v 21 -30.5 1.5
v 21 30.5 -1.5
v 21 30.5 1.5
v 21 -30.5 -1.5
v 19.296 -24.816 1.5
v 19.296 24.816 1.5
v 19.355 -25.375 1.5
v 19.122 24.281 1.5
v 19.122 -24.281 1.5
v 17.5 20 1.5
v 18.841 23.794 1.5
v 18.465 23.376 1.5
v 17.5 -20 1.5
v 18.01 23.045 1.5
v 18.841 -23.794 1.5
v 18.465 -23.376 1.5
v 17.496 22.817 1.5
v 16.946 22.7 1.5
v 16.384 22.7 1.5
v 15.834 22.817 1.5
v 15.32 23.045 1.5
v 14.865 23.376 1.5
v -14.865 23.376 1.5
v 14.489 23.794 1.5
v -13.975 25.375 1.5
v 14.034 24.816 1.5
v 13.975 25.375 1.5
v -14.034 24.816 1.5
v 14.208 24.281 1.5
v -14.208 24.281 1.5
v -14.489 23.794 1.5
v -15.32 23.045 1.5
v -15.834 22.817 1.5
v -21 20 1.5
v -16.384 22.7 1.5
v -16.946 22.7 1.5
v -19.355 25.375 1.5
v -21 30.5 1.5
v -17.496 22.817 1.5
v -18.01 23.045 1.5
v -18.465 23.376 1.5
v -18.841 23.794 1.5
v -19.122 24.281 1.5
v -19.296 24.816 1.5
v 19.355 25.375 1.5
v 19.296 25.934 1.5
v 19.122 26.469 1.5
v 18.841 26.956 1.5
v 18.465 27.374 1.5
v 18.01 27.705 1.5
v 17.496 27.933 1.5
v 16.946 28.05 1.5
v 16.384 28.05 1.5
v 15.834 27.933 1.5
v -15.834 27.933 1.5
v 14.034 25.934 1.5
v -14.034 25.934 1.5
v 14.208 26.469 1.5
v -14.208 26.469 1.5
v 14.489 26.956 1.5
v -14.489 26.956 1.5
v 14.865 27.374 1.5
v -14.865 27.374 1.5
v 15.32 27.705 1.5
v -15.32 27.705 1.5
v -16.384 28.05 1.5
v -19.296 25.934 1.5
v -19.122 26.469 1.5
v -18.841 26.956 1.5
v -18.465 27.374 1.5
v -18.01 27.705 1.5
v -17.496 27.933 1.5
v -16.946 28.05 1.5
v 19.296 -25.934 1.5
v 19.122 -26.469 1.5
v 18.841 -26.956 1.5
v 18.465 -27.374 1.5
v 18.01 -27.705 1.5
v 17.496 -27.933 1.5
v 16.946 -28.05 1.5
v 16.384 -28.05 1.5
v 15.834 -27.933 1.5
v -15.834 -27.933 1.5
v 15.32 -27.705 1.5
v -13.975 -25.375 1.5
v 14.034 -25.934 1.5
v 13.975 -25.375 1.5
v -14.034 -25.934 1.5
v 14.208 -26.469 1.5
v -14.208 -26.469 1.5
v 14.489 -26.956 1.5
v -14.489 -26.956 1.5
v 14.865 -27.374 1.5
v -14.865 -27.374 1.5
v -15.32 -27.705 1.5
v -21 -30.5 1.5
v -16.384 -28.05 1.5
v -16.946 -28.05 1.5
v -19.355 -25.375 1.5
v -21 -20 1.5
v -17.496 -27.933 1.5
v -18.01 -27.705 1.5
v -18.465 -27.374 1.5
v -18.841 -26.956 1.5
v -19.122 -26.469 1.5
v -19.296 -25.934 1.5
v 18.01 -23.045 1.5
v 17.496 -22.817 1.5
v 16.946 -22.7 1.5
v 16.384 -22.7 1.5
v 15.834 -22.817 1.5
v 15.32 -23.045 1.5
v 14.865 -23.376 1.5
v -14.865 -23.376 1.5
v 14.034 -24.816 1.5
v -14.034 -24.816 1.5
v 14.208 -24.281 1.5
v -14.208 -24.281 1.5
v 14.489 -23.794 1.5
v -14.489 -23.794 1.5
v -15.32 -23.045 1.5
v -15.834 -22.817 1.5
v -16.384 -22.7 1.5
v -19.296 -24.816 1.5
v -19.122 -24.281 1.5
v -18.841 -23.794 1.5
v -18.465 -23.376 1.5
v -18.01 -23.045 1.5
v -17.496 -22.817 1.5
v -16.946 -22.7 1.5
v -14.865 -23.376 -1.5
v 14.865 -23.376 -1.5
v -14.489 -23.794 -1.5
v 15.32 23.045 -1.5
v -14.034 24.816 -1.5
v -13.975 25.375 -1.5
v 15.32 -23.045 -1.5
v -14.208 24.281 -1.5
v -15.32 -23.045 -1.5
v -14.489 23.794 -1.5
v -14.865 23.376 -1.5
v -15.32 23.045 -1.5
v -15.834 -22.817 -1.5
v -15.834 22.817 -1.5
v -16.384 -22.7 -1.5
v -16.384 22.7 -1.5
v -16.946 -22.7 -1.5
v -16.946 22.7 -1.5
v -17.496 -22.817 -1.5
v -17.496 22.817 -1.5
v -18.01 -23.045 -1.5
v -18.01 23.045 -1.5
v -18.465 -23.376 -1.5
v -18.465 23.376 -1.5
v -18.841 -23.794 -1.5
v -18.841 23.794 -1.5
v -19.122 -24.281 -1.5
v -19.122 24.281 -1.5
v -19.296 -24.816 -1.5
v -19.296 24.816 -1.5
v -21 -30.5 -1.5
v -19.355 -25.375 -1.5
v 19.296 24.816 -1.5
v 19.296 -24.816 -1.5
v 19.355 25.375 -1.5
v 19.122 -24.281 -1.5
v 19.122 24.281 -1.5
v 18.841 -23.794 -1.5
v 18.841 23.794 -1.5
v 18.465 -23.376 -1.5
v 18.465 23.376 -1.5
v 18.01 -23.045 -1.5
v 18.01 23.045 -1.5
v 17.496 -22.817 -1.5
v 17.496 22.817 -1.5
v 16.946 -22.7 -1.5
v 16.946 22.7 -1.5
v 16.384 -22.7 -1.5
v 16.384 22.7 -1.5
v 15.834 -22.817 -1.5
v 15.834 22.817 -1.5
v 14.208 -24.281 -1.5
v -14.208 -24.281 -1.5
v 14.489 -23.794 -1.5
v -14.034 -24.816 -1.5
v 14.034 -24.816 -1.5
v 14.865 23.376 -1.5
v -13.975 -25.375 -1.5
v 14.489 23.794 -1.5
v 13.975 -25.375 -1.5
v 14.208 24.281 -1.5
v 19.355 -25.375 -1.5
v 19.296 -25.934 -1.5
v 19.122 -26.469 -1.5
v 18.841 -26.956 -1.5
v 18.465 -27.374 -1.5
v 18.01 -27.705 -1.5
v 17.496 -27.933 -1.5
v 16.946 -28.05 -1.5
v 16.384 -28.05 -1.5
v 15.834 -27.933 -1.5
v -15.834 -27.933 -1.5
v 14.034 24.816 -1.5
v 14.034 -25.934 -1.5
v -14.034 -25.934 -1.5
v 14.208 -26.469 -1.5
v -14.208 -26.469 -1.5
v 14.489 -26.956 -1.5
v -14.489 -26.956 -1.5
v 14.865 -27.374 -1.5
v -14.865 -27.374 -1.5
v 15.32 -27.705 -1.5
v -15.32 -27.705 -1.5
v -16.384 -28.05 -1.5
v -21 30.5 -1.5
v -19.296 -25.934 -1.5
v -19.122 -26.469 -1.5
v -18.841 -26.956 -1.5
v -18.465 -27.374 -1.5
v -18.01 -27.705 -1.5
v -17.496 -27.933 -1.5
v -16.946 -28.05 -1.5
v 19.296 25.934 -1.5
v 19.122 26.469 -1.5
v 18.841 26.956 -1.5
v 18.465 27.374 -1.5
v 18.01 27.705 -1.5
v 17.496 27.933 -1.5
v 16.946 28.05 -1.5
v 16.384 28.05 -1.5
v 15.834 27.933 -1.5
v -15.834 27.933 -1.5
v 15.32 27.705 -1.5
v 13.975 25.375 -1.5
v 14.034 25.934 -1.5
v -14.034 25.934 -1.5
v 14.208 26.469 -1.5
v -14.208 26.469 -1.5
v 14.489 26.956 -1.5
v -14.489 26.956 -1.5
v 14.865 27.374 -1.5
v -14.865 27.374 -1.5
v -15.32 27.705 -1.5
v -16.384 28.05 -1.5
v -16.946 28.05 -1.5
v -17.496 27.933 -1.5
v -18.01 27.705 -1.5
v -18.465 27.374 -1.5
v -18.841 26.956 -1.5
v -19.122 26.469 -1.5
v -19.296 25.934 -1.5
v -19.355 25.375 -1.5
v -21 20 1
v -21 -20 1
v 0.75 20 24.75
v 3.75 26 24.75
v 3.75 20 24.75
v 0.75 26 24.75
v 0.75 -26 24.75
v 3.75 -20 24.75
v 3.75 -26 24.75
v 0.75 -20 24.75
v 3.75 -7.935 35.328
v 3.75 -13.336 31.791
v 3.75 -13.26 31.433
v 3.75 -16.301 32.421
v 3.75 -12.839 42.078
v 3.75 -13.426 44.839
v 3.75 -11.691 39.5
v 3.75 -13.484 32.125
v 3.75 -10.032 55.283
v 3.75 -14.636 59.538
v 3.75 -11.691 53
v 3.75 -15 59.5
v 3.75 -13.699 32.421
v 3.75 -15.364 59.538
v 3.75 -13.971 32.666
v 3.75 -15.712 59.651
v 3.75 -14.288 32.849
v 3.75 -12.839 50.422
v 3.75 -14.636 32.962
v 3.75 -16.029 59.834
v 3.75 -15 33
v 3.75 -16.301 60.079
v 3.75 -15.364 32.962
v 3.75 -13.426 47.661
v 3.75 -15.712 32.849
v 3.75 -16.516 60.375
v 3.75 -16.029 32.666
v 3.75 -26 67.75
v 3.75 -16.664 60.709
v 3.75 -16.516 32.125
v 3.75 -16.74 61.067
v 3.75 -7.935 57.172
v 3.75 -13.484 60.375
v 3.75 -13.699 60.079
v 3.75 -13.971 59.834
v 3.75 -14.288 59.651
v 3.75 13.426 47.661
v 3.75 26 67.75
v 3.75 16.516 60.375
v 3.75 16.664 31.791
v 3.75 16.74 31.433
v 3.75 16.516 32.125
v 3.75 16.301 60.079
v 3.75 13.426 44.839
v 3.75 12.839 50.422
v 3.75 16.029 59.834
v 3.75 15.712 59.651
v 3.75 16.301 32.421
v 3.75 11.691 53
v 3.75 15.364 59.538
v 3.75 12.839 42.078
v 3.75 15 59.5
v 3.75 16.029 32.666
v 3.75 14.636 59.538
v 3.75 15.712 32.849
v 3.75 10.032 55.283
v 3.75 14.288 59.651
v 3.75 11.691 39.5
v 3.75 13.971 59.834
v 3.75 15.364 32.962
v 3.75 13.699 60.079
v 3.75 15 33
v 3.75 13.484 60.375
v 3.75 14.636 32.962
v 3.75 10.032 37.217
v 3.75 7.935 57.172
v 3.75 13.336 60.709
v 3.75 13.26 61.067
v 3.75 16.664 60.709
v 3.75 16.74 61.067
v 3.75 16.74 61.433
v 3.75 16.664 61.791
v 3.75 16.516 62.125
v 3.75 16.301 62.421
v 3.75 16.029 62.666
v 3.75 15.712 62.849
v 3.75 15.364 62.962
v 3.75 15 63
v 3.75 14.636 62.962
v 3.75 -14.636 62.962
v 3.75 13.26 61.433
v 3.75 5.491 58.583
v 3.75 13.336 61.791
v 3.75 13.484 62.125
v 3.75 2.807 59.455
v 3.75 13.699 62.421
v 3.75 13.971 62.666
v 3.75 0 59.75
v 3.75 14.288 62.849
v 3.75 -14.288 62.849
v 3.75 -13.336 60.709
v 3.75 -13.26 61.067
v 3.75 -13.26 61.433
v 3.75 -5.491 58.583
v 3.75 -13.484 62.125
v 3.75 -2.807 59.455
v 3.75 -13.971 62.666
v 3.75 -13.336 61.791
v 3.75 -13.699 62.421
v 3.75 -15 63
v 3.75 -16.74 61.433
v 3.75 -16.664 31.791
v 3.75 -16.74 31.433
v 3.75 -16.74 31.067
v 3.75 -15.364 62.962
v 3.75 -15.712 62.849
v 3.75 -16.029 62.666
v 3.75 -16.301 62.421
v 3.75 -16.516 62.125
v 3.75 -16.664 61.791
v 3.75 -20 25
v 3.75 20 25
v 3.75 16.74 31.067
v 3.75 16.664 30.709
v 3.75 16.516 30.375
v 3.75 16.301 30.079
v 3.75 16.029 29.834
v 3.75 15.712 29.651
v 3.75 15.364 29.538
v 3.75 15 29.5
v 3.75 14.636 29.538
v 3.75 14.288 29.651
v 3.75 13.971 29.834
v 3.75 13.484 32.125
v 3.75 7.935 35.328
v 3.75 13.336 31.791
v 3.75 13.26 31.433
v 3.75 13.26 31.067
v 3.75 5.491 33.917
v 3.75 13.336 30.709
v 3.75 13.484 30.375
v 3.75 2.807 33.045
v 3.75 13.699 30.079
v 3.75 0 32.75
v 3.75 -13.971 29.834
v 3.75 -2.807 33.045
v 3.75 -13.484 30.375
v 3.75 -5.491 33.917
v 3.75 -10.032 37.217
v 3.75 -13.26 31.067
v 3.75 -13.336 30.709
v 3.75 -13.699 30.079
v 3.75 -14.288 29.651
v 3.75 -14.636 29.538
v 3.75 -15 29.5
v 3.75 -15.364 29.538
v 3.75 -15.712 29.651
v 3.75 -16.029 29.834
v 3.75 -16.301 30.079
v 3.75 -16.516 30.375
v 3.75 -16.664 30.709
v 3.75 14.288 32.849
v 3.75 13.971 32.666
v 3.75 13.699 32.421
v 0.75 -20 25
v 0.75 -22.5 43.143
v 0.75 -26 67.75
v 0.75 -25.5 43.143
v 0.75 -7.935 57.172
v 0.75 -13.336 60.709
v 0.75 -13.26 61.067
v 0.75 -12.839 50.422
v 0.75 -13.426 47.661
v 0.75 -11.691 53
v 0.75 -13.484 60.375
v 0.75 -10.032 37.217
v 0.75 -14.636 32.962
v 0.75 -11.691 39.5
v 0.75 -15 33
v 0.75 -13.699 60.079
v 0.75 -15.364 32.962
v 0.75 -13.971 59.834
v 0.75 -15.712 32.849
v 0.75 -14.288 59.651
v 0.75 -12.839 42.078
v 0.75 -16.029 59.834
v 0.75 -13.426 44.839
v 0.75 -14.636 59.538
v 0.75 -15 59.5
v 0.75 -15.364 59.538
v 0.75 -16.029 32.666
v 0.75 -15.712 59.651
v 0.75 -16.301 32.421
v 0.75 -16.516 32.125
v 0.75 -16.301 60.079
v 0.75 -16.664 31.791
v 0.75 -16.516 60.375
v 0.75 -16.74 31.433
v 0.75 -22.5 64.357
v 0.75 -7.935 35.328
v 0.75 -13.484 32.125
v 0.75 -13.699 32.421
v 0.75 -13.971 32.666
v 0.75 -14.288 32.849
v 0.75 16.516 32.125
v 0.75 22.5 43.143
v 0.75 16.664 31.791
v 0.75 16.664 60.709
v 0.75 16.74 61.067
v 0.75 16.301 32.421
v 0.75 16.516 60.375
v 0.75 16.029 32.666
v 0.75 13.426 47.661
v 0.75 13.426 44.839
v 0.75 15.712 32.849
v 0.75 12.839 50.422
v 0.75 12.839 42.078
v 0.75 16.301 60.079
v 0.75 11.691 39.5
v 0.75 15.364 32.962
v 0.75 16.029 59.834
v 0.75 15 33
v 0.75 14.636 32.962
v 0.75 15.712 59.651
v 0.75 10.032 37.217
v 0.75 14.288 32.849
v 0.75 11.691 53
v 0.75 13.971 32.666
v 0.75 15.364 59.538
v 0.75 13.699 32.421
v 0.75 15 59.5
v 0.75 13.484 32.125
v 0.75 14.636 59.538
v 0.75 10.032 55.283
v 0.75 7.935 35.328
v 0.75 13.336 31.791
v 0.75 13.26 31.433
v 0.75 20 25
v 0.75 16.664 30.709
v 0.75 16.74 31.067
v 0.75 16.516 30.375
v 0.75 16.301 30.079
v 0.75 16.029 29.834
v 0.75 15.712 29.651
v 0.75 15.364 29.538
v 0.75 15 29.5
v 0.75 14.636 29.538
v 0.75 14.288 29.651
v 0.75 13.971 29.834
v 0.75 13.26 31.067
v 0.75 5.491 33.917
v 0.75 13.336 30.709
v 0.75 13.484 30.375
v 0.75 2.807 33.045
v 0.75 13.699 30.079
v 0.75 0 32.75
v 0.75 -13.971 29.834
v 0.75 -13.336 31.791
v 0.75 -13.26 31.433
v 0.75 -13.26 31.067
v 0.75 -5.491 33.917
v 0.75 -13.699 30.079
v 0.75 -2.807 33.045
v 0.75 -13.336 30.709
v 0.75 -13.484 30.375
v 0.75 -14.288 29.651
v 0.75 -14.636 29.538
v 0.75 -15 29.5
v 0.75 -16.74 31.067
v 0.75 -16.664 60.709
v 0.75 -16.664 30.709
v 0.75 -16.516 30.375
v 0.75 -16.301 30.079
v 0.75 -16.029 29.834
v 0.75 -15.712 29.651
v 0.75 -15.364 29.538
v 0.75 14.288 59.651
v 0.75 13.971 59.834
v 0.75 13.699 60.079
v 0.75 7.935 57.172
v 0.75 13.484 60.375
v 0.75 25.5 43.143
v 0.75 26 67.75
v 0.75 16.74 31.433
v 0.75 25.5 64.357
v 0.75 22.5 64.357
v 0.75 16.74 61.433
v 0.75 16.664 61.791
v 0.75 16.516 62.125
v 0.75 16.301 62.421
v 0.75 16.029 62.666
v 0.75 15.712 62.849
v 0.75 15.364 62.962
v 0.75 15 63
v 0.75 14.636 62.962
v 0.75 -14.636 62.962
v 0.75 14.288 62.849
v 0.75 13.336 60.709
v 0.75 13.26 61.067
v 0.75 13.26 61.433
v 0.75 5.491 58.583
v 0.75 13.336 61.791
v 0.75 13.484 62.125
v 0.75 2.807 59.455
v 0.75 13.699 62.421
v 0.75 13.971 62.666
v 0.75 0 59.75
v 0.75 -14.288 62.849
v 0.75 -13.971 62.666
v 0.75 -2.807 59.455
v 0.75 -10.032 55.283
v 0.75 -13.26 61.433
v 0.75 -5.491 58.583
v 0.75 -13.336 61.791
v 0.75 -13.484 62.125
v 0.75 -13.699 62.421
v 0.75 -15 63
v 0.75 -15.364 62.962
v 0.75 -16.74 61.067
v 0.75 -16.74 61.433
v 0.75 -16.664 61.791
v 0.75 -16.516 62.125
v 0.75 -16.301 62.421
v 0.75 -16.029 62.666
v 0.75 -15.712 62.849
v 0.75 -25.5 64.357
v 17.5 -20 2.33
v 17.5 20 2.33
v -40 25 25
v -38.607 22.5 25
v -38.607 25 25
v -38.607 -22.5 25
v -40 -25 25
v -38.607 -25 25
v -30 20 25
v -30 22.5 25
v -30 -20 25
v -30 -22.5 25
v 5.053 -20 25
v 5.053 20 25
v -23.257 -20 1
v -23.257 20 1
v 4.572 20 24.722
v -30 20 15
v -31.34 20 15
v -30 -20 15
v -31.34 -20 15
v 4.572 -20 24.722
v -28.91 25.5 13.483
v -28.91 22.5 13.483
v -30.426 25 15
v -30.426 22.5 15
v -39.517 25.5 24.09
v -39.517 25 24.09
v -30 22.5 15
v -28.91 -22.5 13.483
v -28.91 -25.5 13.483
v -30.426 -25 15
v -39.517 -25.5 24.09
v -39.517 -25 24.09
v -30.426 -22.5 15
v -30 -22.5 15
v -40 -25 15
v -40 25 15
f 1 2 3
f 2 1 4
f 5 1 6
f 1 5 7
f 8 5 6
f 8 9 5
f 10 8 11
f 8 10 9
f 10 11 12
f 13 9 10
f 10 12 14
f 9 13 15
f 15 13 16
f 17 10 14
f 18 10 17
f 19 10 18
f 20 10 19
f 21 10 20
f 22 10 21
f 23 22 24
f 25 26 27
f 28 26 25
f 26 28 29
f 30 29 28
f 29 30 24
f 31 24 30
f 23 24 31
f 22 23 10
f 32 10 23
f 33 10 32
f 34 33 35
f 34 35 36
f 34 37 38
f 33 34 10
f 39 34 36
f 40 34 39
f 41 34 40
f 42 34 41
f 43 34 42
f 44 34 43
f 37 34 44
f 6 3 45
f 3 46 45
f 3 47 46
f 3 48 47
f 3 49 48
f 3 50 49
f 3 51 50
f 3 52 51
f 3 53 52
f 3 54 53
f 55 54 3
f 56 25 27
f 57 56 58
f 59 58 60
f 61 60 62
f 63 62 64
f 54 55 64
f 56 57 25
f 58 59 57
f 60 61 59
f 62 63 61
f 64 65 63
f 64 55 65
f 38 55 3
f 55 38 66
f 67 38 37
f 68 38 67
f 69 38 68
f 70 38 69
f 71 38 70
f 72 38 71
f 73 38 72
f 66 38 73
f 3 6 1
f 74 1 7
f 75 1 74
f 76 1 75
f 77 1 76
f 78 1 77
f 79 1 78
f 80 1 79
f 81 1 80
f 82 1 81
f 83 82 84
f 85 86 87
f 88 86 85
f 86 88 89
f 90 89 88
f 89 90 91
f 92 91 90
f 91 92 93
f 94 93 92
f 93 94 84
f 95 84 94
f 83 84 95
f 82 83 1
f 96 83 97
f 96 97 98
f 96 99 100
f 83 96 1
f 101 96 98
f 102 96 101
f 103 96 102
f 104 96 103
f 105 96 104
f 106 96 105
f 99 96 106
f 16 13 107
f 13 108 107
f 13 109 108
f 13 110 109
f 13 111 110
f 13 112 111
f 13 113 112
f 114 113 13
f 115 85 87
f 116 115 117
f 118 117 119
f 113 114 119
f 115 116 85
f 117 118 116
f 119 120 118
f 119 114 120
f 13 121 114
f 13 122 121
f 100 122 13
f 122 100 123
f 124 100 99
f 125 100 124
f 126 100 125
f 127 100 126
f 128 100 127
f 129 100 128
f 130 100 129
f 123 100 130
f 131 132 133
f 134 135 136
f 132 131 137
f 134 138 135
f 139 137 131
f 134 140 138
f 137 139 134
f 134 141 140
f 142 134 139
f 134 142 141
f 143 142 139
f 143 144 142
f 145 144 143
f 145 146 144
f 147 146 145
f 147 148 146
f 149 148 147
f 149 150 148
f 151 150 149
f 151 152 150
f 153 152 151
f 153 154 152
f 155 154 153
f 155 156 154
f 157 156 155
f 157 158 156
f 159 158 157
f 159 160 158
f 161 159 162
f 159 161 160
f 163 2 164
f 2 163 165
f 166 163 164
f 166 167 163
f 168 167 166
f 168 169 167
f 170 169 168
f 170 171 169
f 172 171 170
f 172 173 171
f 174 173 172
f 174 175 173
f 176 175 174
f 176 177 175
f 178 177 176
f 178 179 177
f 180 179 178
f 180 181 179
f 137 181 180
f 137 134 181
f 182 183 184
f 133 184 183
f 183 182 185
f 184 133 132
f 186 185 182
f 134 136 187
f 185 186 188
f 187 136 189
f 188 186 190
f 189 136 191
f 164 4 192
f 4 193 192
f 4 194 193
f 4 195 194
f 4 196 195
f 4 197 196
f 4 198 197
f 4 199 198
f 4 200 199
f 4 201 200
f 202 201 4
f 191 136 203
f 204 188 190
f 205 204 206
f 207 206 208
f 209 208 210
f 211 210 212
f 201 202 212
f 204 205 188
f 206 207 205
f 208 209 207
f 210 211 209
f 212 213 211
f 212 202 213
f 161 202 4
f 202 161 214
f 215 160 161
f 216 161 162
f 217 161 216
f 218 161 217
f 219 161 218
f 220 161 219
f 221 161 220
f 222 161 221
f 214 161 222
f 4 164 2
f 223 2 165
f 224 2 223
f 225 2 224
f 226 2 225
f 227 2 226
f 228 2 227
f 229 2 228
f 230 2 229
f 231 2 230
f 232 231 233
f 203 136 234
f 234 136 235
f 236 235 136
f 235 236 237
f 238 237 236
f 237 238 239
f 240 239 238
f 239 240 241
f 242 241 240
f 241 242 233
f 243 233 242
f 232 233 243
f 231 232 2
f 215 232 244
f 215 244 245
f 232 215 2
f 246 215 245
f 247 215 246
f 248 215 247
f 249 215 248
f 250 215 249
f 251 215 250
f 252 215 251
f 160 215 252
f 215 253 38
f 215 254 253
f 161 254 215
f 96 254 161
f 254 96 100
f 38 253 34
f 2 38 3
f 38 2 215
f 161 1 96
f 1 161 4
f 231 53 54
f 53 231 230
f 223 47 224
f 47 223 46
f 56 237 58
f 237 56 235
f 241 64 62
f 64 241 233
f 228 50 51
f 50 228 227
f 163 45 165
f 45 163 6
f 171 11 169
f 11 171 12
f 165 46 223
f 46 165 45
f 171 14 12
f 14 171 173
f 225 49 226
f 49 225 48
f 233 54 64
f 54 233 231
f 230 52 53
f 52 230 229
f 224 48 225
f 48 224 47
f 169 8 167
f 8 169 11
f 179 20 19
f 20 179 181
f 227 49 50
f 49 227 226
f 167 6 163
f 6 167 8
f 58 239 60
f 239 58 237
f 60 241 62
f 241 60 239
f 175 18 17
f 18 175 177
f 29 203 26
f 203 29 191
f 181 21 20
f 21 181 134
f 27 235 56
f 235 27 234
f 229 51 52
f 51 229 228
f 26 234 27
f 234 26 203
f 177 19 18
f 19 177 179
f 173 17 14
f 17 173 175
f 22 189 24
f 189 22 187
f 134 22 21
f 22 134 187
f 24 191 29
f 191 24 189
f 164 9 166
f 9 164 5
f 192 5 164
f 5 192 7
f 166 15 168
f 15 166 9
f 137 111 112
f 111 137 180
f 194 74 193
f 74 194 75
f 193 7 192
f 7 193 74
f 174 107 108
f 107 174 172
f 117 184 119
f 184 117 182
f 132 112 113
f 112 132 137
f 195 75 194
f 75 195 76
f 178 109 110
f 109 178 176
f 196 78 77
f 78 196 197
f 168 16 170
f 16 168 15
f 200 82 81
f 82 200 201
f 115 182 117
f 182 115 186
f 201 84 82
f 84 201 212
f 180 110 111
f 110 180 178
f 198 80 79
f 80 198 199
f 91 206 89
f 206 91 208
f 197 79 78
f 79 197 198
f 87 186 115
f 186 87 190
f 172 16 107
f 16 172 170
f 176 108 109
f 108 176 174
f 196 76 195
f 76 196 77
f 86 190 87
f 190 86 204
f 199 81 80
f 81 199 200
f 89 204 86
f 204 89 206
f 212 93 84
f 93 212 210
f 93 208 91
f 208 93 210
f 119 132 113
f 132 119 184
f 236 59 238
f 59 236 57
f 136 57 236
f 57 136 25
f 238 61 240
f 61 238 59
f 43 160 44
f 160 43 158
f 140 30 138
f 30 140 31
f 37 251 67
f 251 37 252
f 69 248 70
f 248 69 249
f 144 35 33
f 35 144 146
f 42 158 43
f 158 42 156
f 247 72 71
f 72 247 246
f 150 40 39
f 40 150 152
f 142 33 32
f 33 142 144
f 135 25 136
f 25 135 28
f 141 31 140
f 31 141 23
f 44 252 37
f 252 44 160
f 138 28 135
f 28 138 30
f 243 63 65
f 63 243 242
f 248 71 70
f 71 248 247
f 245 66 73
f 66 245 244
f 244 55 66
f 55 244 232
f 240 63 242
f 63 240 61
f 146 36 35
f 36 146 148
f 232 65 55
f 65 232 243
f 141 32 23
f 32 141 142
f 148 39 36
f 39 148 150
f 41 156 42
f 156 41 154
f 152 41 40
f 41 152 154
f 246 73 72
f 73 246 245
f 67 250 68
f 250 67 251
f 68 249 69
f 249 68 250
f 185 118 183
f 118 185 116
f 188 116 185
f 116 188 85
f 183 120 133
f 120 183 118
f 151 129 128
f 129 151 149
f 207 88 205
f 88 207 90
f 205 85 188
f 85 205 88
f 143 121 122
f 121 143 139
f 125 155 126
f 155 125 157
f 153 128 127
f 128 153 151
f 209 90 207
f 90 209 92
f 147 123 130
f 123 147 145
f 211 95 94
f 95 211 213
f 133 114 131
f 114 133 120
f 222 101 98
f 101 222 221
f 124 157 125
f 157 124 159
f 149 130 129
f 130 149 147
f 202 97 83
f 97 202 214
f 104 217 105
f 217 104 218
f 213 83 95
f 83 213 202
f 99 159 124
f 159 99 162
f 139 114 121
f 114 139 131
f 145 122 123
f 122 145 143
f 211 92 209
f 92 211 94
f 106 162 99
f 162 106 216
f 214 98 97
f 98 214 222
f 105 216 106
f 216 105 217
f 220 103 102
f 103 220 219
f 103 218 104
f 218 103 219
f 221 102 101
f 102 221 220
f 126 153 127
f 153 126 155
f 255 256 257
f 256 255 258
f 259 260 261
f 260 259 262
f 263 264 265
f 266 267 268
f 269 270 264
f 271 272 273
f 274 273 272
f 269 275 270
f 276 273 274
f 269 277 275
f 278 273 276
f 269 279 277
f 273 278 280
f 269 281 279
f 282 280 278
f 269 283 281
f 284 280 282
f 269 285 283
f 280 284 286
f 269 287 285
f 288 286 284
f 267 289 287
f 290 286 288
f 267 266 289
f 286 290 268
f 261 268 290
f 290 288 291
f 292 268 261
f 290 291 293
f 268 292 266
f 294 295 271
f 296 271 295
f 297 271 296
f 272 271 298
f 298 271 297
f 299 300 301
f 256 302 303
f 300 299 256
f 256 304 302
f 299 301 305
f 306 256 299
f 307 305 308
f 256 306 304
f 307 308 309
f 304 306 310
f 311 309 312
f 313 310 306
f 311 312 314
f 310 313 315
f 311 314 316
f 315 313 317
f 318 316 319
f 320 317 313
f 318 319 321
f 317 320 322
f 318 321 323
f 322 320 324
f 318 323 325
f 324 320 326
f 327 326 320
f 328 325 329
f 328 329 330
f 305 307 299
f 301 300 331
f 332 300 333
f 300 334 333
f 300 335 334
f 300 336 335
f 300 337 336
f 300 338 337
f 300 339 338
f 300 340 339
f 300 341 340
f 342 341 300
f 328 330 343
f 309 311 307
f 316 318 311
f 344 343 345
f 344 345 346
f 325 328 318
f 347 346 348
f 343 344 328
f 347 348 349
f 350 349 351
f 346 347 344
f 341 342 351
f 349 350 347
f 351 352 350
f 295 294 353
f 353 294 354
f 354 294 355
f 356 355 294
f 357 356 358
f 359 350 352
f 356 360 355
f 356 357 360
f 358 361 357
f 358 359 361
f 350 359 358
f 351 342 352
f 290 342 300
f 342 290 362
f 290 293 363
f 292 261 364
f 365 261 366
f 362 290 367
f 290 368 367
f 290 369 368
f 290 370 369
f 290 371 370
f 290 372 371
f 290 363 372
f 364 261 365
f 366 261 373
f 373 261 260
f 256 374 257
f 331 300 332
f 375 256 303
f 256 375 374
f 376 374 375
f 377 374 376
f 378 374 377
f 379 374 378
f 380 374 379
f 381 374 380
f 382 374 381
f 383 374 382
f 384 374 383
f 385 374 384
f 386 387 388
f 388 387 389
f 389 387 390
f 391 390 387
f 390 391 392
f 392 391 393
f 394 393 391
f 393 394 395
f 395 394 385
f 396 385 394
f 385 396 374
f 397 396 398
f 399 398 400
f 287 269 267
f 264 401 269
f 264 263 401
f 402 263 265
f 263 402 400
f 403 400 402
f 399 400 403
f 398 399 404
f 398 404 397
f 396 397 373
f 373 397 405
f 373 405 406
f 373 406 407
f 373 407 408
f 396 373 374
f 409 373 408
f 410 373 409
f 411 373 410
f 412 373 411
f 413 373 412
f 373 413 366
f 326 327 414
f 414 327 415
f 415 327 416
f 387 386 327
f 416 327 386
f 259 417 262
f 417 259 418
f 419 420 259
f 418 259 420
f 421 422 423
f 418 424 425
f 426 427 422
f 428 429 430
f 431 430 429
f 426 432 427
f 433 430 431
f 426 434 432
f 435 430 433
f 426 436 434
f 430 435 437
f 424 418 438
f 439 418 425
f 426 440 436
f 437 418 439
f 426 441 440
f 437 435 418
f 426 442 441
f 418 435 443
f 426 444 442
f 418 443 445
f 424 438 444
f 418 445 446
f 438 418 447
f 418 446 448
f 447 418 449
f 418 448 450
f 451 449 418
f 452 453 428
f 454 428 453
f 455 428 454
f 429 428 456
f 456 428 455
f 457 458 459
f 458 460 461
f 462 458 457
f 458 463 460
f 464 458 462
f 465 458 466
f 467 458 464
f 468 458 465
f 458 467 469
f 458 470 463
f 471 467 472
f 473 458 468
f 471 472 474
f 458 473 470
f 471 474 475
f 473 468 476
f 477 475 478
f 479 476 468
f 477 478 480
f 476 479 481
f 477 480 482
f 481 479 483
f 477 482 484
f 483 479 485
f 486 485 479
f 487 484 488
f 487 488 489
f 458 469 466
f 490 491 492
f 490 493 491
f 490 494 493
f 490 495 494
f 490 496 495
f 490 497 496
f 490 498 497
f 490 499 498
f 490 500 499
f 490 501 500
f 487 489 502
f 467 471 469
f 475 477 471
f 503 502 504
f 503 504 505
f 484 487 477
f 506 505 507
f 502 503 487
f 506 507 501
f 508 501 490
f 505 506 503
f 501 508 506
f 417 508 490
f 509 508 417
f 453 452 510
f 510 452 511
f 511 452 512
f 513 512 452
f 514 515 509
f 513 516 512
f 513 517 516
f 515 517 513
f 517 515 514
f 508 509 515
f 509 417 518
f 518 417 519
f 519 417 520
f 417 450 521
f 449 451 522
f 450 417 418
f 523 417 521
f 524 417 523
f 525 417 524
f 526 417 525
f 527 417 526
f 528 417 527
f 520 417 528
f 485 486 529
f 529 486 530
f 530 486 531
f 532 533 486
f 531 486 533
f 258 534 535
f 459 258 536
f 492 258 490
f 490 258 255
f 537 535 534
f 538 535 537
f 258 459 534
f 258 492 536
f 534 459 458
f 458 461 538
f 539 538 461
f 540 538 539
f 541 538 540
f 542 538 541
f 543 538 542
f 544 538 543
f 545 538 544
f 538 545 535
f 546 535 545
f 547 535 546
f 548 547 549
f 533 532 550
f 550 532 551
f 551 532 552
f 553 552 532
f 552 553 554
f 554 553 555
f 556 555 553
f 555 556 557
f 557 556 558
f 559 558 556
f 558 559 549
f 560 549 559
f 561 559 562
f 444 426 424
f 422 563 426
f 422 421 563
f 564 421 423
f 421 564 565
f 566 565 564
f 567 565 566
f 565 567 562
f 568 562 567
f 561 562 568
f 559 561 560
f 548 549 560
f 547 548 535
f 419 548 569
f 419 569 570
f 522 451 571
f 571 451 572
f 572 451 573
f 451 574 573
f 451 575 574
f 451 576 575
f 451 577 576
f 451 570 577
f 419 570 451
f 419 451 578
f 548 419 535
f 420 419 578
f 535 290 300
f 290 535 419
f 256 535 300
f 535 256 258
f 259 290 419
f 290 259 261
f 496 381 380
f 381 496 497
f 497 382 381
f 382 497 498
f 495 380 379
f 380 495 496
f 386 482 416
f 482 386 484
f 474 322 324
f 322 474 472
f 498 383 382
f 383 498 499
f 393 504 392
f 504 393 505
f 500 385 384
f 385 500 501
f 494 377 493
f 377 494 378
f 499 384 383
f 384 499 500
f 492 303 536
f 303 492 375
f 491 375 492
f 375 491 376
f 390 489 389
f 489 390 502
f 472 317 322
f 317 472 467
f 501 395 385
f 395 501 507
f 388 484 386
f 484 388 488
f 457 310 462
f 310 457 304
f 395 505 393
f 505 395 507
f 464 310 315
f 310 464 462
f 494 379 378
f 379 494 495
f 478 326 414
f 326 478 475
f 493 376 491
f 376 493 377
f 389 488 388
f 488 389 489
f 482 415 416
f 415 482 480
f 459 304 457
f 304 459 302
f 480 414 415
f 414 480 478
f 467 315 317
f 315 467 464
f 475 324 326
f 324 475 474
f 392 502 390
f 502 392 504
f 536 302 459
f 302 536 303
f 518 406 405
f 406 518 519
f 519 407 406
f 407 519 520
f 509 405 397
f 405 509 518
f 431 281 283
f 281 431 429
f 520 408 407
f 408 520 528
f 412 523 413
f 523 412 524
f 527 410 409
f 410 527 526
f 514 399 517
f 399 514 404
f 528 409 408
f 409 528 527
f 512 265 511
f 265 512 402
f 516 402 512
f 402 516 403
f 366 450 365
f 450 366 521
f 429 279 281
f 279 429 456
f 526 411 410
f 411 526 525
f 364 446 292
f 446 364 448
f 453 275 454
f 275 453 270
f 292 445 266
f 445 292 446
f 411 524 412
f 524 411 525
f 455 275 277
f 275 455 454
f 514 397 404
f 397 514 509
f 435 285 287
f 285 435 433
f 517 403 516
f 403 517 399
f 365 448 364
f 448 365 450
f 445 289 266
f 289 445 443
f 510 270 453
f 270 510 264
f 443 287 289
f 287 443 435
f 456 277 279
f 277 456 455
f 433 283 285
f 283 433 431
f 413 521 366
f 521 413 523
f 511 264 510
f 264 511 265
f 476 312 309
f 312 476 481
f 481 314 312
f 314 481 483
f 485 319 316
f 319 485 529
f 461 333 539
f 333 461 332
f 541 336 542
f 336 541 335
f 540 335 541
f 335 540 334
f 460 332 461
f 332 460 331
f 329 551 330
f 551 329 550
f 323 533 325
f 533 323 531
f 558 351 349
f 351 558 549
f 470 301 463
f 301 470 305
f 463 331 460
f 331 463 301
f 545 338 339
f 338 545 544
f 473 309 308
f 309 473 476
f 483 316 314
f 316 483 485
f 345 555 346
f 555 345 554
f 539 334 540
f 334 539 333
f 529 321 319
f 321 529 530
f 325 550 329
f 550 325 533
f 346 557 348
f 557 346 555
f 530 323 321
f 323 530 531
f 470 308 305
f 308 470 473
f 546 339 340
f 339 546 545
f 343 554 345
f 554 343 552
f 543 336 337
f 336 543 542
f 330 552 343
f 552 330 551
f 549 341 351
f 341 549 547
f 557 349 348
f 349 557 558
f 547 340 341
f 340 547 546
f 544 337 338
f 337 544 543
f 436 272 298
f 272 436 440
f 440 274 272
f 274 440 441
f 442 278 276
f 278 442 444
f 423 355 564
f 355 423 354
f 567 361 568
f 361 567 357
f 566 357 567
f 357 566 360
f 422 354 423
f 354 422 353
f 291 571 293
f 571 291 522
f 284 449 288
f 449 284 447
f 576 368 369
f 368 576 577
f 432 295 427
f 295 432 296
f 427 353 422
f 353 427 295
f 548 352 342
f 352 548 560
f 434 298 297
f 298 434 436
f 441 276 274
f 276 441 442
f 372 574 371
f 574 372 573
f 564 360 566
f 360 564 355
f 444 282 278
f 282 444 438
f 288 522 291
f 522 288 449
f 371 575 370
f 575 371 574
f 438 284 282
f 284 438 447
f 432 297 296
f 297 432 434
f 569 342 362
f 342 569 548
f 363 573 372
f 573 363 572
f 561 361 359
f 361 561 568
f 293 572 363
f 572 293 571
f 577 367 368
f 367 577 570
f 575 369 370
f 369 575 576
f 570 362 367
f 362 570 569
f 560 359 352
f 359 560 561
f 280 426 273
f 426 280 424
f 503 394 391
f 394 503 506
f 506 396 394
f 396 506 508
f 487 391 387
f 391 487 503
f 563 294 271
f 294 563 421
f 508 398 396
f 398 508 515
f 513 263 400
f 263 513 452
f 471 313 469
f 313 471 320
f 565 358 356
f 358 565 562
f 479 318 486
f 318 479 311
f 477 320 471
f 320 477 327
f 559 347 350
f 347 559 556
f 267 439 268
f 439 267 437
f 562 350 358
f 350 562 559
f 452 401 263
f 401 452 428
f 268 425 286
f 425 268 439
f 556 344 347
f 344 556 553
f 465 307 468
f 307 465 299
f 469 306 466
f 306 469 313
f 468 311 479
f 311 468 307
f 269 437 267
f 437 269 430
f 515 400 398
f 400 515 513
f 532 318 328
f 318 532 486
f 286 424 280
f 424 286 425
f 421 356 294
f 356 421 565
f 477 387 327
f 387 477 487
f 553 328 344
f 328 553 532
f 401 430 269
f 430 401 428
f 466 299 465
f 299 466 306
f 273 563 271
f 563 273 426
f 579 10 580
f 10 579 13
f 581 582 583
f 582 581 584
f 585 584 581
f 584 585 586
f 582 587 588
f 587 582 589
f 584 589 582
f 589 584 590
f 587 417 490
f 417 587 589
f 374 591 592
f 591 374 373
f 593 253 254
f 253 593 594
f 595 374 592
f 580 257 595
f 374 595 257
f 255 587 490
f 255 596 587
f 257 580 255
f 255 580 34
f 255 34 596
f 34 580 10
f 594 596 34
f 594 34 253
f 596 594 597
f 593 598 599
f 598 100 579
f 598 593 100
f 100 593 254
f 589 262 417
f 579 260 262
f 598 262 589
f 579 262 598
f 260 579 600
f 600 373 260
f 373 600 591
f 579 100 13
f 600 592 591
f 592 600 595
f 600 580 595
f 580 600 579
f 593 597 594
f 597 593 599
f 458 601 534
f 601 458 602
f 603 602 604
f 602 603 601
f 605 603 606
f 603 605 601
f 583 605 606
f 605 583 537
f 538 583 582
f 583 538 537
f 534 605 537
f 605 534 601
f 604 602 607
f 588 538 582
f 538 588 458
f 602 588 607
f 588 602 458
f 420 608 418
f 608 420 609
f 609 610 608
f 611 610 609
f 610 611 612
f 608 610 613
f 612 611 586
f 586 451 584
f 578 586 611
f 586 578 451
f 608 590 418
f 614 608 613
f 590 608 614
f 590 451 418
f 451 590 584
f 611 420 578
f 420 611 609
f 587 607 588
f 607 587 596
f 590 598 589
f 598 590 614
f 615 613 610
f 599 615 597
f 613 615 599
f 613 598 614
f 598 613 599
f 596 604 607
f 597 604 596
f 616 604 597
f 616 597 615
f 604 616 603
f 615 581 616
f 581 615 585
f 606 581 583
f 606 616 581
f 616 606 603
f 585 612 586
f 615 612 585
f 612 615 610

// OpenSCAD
distX = 28.33+5;
distY = 45.75+5;
difference()
{
    cube([42,61,3], center=true);

    translate([distX/2,distY/2,-2])
    cylinder(4, 2.69,2.69);

    translate([distX/2,-distY/2,-2])
    cylinder(4, 2.69,2.69);

    translate([-distX/2,distY/2,-2])
    cylinder(4, 2.69,2.69);

    translate([-distX/2,-distY/2,-2])
    cylinder(4, 2.69,2.69);
}

height = 46.25;
back = 18;

$fn=30;

// Motor 
translate([-back,0,height])
{
    /*
    cube([39,42.25,42.25], center = true);
    translate([39/2,0,0])
    rotate([0,90,0])
    cylinder(24, 2.25, 2.25);*/
}


// Rotator
/*
translate([39/2+24-7-back,0,height])
rotate([0,90,0])
{
    difference()
    {
        translate([0,0,-7])
        cylinder(14,12.5, 12.5);

        // Slits
        translate([10,0,0])
        cube([10,30, 5.5], center=true);

        translate([-10,0,0])
        cube([10,30, 5.5], center=true);
        
        
        // Shaft
        translate([0,0,-8])
        cylinder(16, 5.25/2,5.25/2);
        $fn=30;
        
        // Holder thing
        sideX1 = 7;
        sideY1 = 5;
        translate([-sideX1,sideY1,-8])
        cylinder(16, 3,3);
        
        translate([sideX1,-sideY1,-8])
        cylinder(16, 3,3);
        
        sideX2 = 4.35;
        sideY2 = 7;
        // Holder thing cube
        translate([-sideX2,sideY2,-1])
        rotate([0,0,45])
        cube([6,5,150],center=true);
        
        translate([sideX2,-sideY2,-1])
        rotate([0,0,45])
        cube([6,5,50],center=true);
        
        
        
        // Holder thing 2
        sideX3 = 3;
        sideY3 = 9;
        translate([-sideX3,sideY3,-8])
        cylinder(16, 3,3);
        
        translate([sideX3,-sideY3,-8])
        cylinder(16, 3,3);
        
        
        // Holder thing 3
        sideX4 = 3;
        sideY4 = 11;
        translate([-sideX4,sideY4,-8])
        cylinder(16, 3,3);
        
        translate([sideX4,-sideY4,-8])
        cylinder(16, 3,3);
    }

    // Key Hole
    translate([-2,2,-7])

    cube([4,1,14]);
}*/

dist=30;

// Faceplate
translate([2.25,0,height])
rotate([0,90,0])
{
    difference()
    {
        // Plate
        cube([43,52,3], center = true);
        
        // Screw Holes
        translate([dist/2,dist/2,-2])
        cylinder(5, 1.75,1.75);
        
        translate([dist/2,-dist/2,-2])
        cylinder(5, 1.75,1.75);
        
        translate([-dist/2,dist/2,-2])
        cylinder(5, 1.75,1.75);
        
        translate([-dist/2,-dist/2,-2])
        cylinder(5, 1.75,1.75);
        
        translate([0,0,-2])
        cylinder(5, 27/2,27/2);
    }
}

// Block
difference()
{
    translate([-10,0,13])
    cube([55,40,24], center=true);
    
    translate([20,0,14])
    rotate([0,60,0])
    cube([34,48,16], center=true);
    
    translate([-40,0,14])
    rotate([0,60,0])
    cube([40,48,16], center=true);
    /*
    translate([-10,0,14])
    rotate([0,5,0])
    cube([15,48,16], center=true);
    
    translate([-10,0,13])
    rotate([5,0,90])
    cube([30,48,16], center=true);*/
}

difference()
{
    translate([-13,0,40])
    rotate([0,45,0])
    {
        translate([0,24,0])
        cube([15,3,60], center=true);

        translate([0,-24,0])
        cube([15,3,60], center=true);
    }

    // Face plate plate
    translate([9,0,55])
    cube([12,70,30], center=true);
}

translate([-35,0,20])
cube([10,50,10], center=true);
